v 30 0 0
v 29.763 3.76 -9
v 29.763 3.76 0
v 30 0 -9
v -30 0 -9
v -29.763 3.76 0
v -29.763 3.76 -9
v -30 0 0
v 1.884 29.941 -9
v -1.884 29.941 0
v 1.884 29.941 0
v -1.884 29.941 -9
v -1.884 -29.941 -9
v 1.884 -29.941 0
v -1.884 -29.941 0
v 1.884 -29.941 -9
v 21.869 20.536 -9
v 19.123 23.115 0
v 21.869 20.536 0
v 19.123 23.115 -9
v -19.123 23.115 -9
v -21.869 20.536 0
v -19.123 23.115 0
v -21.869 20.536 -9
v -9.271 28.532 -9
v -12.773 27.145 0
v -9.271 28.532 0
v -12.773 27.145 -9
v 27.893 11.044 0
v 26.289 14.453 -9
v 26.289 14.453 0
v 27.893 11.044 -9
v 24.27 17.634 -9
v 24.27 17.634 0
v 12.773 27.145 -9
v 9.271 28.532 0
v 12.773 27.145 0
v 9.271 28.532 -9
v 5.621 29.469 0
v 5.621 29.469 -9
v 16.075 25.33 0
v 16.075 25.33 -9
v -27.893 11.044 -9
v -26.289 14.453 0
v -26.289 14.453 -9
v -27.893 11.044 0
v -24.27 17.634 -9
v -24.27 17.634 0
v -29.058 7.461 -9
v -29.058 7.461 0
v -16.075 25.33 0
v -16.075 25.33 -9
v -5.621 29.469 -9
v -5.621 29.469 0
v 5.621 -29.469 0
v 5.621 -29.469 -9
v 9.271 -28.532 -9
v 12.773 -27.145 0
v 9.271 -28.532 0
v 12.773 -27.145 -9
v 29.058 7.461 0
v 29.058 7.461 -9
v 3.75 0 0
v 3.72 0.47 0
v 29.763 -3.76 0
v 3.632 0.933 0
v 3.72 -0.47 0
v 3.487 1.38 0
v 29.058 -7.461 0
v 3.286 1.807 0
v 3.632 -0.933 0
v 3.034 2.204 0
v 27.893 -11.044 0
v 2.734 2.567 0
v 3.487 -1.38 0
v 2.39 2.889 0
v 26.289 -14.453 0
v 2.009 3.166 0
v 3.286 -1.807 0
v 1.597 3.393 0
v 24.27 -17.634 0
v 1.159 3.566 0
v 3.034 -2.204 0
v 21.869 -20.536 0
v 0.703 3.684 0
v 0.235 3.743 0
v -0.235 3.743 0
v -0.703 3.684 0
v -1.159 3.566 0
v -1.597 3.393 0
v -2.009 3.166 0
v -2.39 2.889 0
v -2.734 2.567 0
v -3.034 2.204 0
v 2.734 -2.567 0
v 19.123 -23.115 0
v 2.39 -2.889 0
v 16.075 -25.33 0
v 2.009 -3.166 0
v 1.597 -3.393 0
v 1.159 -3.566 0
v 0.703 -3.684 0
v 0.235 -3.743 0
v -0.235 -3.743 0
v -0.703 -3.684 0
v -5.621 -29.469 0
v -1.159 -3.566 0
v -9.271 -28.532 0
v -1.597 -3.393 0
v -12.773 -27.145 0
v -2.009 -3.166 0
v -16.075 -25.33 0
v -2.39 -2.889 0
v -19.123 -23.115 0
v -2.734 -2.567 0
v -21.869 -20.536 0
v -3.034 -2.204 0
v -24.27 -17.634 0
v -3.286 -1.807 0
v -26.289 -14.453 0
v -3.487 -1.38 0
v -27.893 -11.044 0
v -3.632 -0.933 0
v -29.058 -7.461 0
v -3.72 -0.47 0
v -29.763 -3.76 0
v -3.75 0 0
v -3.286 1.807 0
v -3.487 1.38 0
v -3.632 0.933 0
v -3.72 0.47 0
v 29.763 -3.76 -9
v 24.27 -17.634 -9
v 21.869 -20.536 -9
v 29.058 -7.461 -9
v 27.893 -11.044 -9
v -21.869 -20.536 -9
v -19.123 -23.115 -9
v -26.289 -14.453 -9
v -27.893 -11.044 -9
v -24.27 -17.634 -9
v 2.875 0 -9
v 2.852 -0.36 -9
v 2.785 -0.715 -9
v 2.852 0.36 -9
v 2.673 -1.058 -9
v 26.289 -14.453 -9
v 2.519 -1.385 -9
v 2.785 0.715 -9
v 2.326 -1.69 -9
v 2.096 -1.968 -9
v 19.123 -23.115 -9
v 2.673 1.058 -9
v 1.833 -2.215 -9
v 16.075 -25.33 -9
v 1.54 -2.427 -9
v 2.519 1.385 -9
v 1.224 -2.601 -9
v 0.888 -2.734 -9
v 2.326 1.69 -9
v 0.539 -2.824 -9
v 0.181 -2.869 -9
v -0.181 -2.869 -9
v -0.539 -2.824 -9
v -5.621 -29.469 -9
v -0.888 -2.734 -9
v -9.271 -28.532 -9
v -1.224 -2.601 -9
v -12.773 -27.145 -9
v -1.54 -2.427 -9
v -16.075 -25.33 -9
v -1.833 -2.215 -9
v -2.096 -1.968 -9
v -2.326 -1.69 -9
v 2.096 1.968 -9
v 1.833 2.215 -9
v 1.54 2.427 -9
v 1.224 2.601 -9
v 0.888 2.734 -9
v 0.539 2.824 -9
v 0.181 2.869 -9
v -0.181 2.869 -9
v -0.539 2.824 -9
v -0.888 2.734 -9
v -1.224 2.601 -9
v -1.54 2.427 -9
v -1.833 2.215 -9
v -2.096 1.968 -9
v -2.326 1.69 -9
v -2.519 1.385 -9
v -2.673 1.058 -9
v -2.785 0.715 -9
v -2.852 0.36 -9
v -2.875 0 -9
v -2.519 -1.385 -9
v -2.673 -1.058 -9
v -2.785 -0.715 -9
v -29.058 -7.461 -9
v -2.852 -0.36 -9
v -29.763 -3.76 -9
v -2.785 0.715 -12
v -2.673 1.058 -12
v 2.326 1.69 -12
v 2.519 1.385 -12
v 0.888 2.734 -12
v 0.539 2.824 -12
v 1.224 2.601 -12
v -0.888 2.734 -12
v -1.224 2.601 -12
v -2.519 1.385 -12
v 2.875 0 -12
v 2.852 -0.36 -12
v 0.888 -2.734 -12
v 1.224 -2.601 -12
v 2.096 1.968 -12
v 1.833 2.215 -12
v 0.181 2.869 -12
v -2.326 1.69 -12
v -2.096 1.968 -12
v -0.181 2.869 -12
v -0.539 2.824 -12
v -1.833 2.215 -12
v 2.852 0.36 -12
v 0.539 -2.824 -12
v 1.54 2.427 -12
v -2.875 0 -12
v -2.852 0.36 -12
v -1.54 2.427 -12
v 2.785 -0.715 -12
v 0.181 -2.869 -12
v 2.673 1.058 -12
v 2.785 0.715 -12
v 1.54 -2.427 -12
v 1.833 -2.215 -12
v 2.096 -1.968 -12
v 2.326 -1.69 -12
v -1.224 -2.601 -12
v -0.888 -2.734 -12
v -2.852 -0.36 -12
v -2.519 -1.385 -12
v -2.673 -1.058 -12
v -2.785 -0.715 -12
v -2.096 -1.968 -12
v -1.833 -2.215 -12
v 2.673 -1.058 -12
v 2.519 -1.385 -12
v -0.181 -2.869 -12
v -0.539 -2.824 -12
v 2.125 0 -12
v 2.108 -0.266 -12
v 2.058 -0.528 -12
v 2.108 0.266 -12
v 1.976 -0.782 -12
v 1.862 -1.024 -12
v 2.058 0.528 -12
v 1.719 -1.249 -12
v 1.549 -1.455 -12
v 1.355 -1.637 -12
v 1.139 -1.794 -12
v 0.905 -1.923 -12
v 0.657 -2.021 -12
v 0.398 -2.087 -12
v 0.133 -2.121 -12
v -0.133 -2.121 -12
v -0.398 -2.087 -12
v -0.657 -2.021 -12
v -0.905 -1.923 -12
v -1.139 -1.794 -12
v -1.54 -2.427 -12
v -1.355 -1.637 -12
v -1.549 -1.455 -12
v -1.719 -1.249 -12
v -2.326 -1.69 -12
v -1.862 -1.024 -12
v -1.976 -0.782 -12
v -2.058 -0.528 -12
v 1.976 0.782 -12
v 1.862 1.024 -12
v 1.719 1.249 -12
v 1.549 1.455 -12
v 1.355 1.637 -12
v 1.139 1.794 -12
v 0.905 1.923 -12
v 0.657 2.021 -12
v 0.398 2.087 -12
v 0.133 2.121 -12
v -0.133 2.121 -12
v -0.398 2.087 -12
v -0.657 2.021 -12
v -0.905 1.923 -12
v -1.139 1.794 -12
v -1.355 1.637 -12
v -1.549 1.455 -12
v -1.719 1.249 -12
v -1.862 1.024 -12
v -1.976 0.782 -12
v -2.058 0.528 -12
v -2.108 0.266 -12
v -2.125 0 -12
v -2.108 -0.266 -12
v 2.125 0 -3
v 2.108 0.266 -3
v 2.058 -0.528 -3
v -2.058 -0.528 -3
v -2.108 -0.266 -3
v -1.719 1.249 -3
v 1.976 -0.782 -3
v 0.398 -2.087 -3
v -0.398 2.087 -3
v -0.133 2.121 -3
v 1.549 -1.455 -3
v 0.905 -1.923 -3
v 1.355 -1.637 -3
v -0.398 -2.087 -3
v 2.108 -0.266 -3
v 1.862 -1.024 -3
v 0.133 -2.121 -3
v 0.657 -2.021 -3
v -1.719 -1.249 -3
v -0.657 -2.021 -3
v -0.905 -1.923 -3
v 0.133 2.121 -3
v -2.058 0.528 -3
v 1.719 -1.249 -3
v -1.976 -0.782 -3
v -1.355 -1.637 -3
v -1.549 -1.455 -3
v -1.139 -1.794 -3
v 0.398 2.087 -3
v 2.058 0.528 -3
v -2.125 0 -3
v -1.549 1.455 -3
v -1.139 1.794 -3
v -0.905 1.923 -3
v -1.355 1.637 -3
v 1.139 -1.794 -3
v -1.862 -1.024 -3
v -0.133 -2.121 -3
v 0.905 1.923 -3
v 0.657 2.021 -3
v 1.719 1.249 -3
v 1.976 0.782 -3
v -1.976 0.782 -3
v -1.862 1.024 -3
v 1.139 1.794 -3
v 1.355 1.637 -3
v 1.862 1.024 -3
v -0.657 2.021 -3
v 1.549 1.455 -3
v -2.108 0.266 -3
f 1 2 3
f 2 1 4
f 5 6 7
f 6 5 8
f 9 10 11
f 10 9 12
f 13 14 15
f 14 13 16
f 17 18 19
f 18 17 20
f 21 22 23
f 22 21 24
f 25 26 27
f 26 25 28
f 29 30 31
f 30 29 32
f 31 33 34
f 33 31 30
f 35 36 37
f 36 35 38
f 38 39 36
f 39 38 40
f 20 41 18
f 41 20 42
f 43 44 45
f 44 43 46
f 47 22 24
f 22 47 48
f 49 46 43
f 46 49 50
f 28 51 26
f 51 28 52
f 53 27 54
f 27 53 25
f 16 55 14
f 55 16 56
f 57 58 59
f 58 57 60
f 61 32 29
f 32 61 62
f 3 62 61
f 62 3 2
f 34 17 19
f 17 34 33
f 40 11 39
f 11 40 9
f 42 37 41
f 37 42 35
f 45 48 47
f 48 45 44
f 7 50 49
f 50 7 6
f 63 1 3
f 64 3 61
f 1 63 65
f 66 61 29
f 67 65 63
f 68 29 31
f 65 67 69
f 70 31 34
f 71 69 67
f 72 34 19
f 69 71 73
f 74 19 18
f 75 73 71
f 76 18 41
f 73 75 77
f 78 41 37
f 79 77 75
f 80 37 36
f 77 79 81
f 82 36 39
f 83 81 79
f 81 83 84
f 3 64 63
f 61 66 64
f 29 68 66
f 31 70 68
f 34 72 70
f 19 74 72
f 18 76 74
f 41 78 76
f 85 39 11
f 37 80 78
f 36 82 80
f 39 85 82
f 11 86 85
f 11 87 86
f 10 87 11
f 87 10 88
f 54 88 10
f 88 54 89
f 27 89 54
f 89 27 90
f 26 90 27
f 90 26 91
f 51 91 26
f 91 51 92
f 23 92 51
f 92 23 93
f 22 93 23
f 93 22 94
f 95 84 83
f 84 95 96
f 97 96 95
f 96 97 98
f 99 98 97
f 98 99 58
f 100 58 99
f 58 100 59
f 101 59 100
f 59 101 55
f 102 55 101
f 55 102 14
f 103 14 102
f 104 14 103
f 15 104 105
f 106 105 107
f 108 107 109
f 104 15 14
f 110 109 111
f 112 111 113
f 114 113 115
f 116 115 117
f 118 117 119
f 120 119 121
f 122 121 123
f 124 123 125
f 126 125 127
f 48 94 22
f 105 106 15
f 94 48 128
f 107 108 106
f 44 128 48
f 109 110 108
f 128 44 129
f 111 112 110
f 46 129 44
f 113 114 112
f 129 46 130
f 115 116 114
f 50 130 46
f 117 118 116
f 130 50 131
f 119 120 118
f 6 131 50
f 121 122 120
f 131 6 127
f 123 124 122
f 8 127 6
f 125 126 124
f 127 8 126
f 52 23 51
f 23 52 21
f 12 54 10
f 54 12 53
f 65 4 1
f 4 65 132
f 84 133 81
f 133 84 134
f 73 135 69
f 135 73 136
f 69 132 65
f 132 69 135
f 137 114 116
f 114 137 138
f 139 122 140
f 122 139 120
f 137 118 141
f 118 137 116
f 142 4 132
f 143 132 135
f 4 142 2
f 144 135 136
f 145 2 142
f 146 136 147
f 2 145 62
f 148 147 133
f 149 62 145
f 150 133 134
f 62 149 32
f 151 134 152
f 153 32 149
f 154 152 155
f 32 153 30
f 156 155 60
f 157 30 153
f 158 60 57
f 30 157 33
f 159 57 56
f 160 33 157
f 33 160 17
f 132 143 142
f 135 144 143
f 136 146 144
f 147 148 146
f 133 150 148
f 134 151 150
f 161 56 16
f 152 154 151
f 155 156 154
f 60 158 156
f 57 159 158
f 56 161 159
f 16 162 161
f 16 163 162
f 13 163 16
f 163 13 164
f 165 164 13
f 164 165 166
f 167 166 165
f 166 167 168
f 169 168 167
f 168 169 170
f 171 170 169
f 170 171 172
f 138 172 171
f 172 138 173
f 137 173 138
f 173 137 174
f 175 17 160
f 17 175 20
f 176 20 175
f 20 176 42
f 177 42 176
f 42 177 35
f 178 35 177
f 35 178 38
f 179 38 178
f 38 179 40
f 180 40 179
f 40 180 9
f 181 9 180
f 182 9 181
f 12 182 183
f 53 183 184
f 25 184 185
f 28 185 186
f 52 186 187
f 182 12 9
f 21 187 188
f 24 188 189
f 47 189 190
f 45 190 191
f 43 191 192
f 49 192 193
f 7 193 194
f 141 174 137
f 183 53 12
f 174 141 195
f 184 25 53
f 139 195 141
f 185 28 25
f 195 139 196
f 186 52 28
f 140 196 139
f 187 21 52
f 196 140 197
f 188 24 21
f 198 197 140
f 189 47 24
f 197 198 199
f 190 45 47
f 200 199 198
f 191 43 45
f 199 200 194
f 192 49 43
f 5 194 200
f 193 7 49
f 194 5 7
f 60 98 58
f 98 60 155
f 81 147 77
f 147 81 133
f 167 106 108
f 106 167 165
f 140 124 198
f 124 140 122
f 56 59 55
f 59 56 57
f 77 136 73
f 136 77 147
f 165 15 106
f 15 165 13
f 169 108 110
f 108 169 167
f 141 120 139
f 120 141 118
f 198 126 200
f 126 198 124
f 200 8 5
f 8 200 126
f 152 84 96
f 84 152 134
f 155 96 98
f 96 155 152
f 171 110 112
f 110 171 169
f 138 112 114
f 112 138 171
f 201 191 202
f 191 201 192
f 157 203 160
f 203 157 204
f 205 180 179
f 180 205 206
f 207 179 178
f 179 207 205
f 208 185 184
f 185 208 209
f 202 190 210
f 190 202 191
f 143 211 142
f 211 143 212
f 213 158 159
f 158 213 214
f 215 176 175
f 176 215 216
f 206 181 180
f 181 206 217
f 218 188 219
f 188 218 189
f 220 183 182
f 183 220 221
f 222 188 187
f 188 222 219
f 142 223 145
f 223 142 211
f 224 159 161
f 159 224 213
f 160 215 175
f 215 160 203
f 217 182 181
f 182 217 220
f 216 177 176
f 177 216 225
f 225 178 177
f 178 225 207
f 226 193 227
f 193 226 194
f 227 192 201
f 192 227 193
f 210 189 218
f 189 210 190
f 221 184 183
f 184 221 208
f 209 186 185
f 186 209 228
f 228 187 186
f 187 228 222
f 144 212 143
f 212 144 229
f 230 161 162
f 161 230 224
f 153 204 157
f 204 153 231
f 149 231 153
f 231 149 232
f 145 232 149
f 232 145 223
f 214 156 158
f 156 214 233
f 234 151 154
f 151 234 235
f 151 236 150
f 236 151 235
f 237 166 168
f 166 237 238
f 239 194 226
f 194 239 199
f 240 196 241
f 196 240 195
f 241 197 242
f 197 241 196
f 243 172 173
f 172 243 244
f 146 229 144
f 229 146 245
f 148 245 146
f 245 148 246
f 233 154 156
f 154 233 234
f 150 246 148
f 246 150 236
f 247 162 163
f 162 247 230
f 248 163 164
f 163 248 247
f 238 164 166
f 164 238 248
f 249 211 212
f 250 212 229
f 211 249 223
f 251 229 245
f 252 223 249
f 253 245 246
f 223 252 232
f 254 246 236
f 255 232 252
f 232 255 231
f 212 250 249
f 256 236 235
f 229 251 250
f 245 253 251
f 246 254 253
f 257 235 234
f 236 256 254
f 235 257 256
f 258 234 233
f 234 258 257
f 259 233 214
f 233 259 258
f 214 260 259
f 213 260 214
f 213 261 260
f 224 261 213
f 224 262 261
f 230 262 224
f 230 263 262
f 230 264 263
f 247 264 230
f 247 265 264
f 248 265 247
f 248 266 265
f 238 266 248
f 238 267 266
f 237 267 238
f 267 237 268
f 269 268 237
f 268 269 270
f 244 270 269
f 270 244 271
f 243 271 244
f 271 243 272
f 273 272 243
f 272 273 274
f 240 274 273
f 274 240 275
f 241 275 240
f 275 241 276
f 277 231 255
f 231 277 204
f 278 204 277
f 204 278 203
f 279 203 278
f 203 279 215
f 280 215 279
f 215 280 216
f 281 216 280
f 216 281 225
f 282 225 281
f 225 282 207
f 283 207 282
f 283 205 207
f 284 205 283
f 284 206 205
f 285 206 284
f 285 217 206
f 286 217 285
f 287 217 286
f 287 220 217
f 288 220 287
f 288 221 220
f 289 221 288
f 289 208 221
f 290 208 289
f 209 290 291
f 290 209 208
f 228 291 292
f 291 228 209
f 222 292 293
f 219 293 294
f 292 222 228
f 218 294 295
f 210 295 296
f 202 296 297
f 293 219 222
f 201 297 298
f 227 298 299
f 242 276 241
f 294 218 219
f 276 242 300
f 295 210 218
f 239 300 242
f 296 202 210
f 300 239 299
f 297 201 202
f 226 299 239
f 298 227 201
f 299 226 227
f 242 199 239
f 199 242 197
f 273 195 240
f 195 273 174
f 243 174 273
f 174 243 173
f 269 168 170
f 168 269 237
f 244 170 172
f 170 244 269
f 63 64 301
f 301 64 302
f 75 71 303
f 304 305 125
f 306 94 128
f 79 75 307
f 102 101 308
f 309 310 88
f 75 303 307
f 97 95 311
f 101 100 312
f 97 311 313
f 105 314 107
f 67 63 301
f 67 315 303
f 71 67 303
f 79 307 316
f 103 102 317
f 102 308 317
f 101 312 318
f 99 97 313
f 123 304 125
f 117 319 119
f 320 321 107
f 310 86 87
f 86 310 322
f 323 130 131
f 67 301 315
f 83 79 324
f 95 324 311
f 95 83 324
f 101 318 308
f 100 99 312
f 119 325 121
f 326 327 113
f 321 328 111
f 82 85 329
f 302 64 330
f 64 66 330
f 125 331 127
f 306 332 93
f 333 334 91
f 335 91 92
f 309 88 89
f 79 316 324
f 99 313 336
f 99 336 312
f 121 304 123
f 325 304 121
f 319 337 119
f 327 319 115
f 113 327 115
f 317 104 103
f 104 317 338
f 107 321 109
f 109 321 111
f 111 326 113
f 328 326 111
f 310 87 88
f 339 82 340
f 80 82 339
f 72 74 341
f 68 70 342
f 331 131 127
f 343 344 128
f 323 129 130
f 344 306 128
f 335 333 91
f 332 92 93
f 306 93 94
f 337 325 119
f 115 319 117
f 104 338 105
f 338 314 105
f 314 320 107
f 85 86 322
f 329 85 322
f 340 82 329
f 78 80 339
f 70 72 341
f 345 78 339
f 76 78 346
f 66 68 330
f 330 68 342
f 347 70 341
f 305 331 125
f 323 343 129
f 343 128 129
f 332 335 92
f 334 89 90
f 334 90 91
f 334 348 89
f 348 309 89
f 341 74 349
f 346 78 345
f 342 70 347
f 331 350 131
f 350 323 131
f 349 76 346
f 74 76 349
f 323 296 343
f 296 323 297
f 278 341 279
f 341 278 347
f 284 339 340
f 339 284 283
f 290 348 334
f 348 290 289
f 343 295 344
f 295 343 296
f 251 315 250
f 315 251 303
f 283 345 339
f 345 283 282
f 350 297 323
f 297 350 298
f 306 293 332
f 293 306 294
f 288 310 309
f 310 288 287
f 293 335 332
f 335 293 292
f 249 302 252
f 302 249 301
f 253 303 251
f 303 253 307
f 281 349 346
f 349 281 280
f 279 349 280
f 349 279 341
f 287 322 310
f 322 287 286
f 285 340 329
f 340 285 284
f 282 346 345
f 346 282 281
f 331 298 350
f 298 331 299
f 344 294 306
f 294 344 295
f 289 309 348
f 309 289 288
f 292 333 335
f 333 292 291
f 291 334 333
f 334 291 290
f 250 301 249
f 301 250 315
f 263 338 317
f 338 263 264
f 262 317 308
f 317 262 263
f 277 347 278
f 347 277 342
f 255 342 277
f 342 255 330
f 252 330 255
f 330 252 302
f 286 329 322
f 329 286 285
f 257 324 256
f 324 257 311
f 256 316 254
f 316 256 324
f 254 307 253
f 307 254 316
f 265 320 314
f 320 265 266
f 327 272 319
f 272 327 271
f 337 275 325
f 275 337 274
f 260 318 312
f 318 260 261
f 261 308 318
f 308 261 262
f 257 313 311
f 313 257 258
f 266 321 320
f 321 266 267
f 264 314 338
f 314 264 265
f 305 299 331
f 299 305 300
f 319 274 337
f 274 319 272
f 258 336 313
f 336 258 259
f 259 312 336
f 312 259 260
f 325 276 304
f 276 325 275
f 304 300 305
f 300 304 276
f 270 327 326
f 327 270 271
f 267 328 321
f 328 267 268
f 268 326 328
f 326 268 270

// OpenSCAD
$fn = 50;

difference() {
	union() {
		translate(v = [0, 0, -9.0]) {
			cylinder(h = 9, r = 30.0);
		}
		#translate(v = [0, 0, -12.0]) {
			cylinder(h = 12, r = 2.875);
		}
	}
	union() {
		translate(v = [0, 0, 0]) {
			rotate(a = [0, 0, 0]) {
				difference() {
					union() {
						translate(v = [0, 0, -12.0]) {
							cylinder(h = 12, r = 2.0);
						}
						translate(v = [0, 0, -3]) {
							cylinder(h = 3, r1 = 2.125, r2 = 3.75);
						}
						translate(v = [0, 0, -12.0]) {
							cylinder(h = 12, r = 2.125);
						}
						translate(v = [0, 0, -12.0]) {
							cylinder(h = 12, r = 2.0);
						}
					}
					union();
				}
			}
		}
	}
}
